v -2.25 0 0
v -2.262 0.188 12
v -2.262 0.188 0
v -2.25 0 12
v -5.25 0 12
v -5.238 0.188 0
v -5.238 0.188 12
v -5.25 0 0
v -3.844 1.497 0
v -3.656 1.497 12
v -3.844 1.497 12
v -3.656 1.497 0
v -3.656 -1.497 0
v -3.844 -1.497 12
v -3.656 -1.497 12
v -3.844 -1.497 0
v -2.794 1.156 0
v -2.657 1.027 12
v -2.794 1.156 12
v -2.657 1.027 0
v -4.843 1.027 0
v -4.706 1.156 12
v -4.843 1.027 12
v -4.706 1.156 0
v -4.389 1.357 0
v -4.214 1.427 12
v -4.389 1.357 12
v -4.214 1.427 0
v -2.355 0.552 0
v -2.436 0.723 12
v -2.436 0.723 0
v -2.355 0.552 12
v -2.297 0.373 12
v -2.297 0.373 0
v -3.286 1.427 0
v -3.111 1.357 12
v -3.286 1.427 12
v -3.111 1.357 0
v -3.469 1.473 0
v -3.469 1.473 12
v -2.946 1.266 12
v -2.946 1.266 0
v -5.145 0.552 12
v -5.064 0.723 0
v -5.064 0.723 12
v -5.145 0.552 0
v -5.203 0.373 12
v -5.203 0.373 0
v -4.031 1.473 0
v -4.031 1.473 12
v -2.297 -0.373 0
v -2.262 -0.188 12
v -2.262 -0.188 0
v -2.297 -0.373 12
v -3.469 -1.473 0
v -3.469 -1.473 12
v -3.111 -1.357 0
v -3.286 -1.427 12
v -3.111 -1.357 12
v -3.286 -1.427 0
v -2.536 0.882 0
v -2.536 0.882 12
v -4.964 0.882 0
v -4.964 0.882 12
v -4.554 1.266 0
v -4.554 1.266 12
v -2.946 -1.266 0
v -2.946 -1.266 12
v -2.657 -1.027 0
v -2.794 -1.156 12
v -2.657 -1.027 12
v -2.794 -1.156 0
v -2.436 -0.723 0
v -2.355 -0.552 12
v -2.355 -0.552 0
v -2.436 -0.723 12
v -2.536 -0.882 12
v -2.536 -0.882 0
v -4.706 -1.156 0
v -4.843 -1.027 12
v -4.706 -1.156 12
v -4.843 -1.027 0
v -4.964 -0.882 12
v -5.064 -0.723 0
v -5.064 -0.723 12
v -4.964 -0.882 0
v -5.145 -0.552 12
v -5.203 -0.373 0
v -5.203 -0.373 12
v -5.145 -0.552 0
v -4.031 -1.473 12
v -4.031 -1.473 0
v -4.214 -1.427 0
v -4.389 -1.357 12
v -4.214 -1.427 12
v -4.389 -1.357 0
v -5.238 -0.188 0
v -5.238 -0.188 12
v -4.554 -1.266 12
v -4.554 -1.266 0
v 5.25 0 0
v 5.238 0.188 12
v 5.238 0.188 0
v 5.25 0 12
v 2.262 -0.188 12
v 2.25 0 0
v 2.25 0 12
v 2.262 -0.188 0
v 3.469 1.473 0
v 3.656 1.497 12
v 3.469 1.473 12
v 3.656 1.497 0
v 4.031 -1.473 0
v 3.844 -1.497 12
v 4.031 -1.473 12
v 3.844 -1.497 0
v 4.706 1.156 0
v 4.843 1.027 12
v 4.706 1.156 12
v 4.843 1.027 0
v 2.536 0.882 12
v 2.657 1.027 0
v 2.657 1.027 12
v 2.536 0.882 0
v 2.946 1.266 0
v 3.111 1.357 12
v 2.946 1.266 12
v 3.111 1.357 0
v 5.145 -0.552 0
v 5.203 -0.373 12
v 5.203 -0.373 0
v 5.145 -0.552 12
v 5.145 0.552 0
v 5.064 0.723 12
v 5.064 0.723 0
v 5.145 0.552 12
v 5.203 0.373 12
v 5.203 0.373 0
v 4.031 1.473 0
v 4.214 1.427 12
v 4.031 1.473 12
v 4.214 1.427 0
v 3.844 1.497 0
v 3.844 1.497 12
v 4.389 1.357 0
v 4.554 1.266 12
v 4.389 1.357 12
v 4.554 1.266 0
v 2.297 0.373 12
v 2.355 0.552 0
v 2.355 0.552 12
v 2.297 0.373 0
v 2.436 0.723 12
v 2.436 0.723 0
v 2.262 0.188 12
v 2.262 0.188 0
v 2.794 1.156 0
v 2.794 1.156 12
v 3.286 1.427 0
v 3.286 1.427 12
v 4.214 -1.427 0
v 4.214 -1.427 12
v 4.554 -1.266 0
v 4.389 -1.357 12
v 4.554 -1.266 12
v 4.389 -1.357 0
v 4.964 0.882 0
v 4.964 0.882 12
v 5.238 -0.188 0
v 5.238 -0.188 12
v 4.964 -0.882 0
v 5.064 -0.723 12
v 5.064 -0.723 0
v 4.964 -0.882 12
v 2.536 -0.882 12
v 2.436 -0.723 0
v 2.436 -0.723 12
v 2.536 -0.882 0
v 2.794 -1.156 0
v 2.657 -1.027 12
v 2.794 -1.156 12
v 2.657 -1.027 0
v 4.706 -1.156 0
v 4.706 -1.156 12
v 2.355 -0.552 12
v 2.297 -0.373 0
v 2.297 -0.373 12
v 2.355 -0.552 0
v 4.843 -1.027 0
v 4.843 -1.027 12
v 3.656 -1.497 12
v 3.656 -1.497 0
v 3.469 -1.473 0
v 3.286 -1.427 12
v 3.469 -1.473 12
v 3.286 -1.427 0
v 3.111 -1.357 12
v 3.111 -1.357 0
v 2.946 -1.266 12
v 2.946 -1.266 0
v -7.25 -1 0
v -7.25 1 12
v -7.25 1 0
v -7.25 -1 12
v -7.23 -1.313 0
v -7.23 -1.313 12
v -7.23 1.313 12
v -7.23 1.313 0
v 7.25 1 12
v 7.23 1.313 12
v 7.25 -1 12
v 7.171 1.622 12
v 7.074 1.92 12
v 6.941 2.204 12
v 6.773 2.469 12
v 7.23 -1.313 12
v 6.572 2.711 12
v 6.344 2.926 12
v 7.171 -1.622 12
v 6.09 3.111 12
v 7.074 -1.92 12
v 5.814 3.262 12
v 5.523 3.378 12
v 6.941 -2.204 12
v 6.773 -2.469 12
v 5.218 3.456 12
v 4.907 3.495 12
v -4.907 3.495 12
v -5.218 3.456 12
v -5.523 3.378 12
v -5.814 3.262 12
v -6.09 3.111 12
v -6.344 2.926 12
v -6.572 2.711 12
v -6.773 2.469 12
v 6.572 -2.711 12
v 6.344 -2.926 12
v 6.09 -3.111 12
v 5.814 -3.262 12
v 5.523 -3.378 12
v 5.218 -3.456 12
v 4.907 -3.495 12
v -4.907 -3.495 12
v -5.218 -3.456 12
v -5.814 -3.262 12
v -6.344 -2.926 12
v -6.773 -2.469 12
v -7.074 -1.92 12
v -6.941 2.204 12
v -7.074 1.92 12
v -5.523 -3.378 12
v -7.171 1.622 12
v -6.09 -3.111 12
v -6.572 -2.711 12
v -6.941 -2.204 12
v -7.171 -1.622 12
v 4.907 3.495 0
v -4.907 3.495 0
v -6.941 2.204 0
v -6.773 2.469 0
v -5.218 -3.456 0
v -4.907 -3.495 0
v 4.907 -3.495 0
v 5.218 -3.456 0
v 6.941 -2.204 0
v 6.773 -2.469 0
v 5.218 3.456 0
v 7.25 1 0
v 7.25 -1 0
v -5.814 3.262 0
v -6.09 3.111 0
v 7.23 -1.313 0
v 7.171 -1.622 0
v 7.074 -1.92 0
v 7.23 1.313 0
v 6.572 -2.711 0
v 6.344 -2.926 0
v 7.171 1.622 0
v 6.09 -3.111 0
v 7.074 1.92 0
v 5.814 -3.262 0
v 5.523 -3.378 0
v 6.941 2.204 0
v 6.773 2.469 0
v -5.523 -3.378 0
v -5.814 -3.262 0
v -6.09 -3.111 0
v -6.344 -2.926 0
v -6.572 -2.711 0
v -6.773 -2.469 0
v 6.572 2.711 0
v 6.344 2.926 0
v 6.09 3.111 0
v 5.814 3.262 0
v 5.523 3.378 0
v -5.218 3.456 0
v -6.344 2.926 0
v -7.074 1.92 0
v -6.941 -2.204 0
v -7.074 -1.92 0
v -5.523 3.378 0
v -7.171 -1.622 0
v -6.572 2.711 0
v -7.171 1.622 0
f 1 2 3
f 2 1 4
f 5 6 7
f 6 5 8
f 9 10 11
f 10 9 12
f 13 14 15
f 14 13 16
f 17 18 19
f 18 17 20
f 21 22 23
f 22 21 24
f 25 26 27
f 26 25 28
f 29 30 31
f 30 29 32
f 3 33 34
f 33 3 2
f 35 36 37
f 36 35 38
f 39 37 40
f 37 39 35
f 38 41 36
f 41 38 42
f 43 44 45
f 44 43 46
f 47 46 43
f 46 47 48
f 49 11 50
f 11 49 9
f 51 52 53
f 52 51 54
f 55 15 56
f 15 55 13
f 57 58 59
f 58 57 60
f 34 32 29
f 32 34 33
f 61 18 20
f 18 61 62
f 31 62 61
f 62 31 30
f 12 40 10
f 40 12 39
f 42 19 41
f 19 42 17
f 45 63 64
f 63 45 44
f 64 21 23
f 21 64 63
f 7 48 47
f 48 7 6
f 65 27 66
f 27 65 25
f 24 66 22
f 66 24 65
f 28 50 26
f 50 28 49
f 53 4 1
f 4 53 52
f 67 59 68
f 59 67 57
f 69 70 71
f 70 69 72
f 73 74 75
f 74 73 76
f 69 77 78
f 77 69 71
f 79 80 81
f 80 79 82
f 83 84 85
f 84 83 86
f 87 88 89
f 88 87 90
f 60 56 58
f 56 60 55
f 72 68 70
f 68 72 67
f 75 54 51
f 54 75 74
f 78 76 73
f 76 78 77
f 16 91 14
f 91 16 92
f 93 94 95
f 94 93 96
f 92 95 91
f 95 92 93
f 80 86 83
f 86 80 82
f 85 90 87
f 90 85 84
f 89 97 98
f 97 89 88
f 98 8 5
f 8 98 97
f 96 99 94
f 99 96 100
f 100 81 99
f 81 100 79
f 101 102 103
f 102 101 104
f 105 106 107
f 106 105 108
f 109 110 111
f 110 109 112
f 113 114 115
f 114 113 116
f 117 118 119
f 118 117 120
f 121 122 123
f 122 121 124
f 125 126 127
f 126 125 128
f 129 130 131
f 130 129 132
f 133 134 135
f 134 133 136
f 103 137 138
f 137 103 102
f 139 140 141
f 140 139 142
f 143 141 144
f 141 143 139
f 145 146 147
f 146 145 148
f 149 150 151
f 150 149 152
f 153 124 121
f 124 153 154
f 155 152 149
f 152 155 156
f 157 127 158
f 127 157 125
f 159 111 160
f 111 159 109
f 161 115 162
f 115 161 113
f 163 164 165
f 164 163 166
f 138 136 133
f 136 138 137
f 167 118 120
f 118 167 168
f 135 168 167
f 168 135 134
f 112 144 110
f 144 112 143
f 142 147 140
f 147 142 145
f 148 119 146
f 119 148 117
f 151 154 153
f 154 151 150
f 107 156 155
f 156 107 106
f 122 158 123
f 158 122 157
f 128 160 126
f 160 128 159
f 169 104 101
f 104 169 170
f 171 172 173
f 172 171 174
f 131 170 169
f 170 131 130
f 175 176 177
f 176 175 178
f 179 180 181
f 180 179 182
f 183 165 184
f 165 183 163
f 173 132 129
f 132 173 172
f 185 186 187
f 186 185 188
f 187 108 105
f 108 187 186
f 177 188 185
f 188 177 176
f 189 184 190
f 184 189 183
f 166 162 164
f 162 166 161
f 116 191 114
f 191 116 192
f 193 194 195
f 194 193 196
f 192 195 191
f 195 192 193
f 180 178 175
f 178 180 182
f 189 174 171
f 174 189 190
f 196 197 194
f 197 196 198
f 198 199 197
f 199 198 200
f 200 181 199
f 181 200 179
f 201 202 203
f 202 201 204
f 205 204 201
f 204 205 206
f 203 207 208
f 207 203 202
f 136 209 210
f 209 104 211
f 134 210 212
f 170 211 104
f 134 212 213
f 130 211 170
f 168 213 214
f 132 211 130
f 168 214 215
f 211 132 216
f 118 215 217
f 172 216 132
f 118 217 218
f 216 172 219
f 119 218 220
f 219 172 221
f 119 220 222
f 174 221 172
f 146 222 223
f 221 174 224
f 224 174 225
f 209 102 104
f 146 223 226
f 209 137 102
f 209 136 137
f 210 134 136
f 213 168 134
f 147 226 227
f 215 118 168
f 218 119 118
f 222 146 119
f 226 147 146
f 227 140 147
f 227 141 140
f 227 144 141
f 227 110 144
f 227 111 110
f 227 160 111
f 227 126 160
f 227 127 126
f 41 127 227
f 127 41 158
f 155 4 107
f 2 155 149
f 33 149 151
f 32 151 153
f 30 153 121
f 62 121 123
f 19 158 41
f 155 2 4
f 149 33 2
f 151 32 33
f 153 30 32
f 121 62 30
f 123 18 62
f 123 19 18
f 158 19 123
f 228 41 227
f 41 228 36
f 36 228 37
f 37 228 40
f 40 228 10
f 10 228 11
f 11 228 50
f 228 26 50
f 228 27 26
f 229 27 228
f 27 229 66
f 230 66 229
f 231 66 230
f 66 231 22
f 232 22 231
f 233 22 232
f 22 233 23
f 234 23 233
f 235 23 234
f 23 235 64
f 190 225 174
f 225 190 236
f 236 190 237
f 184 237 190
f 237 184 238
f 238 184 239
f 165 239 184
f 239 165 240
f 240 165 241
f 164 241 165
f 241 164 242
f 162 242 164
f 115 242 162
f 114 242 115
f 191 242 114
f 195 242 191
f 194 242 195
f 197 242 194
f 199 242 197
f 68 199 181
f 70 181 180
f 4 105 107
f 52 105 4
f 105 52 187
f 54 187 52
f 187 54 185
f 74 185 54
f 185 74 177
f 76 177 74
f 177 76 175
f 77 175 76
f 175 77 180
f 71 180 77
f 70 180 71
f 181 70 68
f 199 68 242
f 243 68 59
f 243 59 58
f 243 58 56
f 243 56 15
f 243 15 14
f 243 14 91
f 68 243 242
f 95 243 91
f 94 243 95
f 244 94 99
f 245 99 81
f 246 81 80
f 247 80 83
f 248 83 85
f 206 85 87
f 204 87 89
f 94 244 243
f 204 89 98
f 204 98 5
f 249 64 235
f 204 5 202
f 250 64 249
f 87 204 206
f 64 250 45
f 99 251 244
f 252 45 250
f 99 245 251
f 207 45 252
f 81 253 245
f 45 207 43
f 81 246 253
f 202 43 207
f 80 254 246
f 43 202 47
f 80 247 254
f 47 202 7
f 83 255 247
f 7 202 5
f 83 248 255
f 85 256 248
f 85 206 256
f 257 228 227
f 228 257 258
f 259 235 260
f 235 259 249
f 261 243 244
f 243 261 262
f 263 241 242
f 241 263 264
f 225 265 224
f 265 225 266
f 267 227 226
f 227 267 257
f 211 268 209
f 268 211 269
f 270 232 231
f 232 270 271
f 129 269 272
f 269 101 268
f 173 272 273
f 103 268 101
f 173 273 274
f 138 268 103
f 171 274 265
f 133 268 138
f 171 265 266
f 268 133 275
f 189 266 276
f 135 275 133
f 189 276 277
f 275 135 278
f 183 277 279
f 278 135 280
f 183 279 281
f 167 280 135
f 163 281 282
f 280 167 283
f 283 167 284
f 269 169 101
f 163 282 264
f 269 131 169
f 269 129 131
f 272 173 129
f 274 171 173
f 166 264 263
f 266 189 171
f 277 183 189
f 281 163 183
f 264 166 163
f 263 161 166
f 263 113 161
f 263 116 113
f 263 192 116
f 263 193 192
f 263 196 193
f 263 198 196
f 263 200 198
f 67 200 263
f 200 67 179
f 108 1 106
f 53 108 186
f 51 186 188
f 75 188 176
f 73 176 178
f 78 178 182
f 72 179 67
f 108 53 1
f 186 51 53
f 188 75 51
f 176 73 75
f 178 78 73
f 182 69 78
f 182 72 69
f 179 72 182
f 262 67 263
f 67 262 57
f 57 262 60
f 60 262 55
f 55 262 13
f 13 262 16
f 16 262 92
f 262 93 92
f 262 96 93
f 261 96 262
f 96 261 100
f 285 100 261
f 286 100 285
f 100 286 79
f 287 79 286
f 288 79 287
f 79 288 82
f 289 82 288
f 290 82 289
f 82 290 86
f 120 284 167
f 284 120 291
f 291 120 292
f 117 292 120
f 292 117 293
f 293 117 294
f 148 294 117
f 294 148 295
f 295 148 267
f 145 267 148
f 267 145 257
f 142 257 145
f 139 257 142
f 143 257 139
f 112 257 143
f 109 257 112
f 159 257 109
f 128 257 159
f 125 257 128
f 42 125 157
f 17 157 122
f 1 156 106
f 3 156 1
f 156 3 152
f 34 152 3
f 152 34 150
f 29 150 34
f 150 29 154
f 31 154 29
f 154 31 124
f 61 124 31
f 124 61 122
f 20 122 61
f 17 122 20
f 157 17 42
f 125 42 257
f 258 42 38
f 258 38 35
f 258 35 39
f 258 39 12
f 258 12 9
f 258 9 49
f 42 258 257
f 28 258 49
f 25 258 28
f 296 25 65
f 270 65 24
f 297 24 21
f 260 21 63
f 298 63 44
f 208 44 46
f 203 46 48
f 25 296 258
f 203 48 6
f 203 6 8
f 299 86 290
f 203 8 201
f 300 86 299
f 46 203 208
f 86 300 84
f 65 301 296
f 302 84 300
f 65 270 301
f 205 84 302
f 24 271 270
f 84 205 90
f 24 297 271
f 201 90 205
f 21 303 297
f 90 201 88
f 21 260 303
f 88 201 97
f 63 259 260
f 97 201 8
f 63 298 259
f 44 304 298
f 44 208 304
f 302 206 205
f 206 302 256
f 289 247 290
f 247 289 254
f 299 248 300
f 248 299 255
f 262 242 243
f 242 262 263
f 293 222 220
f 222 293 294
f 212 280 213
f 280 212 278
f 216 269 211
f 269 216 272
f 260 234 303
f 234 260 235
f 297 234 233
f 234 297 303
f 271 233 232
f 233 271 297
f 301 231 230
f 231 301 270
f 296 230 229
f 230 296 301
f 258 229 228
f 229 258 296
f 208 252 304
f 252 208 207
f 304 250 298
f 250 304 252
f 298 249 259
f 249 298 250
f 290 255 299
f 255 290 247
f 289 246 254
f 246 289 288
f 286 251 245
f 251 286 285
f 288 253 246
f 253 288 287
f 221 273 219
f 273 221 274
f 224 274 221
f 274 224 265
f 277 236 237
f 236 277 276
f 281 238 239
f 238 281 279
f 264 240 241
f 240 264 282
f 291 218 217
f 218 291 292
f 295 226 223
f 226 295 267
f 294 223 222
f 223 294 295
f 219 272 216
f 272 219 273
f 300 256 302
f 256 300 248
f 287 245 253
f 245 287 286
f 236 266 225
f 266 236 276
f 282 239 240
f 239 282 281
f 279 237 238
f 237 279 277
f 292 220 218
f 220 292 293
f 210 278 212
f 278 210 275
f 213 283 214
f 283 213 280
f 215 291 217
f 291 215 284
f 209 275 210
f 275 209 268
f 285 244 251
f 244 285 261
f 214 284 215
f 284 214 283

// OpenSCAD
$fn = 50;


difference() {
	union() {
		translate(v = [0, 0, 0]) {
			rotate(a = [0, 0, 0]) {
				hull() {
					translate(v = [-4.7500000000, 1.0000000000, 0]) {
						rotate(a = [0, 0, 0]) {
							translate(v = [0, 0, 0]) {
								rotate(a = [0, 0, 0]) {
									cylinder(h = 12, r = 2.5000000000);
								}
							}
						}
					}
					translate(v = [4.7500000000, 1.0000000000, 0]) {
						rotate(a = [0, 0, 0]) {
							translate(v = [0, 0, 0]) {
								rotate(a = [0, 0, 0]) {
									cylinder(h = 12, r = 2.5000000000);
								}
							}
						}
					}
					translate(v = [-4.7500000000, -1.0000000000, 0]) {
						rotate(a = [0, 0, 0]) {
							translate(v = [0, 0, 0]) {
								rotate(a = [0, 0, 0]) {
									cylinder(h = 12, r = 2.5000000000);
								}
							}
						}
					}
					translate(v = [4.7500000000, -1.0000000000, 0]) {
						rotate(a = [0, 0, 0]) {
							translate(v = [0, 0, 0]) {
								rotate(a = [0, 0, 0]) {
									cylinder(h = 12, r = 2.5000000000);
								}
							}
						}
					}
				}
			}
		}
	}
	union() {
		translate(v = [-3.7500000000, 0.0000000000, 0]) {
			rotate(a = [0, 0, 0]) {
				translate(v = [0, 0, -50]) {
					rotate(a = [0, 0, 0]) {
						cylinder(h = 100, r = 1.5000000000);
					}
				}
			}
		}
		translate(v = [3.7500000000, 0.0000000000, 0]) {
			rotate(a = [0, 0, 0]) {
				translate(v = [0, 0, -50]) {
					rotate(a = [0, 0, 0]) {
						cylinder(h = 100, r = 1.5000000000);
					}
				}
			}
		}
	}
}
